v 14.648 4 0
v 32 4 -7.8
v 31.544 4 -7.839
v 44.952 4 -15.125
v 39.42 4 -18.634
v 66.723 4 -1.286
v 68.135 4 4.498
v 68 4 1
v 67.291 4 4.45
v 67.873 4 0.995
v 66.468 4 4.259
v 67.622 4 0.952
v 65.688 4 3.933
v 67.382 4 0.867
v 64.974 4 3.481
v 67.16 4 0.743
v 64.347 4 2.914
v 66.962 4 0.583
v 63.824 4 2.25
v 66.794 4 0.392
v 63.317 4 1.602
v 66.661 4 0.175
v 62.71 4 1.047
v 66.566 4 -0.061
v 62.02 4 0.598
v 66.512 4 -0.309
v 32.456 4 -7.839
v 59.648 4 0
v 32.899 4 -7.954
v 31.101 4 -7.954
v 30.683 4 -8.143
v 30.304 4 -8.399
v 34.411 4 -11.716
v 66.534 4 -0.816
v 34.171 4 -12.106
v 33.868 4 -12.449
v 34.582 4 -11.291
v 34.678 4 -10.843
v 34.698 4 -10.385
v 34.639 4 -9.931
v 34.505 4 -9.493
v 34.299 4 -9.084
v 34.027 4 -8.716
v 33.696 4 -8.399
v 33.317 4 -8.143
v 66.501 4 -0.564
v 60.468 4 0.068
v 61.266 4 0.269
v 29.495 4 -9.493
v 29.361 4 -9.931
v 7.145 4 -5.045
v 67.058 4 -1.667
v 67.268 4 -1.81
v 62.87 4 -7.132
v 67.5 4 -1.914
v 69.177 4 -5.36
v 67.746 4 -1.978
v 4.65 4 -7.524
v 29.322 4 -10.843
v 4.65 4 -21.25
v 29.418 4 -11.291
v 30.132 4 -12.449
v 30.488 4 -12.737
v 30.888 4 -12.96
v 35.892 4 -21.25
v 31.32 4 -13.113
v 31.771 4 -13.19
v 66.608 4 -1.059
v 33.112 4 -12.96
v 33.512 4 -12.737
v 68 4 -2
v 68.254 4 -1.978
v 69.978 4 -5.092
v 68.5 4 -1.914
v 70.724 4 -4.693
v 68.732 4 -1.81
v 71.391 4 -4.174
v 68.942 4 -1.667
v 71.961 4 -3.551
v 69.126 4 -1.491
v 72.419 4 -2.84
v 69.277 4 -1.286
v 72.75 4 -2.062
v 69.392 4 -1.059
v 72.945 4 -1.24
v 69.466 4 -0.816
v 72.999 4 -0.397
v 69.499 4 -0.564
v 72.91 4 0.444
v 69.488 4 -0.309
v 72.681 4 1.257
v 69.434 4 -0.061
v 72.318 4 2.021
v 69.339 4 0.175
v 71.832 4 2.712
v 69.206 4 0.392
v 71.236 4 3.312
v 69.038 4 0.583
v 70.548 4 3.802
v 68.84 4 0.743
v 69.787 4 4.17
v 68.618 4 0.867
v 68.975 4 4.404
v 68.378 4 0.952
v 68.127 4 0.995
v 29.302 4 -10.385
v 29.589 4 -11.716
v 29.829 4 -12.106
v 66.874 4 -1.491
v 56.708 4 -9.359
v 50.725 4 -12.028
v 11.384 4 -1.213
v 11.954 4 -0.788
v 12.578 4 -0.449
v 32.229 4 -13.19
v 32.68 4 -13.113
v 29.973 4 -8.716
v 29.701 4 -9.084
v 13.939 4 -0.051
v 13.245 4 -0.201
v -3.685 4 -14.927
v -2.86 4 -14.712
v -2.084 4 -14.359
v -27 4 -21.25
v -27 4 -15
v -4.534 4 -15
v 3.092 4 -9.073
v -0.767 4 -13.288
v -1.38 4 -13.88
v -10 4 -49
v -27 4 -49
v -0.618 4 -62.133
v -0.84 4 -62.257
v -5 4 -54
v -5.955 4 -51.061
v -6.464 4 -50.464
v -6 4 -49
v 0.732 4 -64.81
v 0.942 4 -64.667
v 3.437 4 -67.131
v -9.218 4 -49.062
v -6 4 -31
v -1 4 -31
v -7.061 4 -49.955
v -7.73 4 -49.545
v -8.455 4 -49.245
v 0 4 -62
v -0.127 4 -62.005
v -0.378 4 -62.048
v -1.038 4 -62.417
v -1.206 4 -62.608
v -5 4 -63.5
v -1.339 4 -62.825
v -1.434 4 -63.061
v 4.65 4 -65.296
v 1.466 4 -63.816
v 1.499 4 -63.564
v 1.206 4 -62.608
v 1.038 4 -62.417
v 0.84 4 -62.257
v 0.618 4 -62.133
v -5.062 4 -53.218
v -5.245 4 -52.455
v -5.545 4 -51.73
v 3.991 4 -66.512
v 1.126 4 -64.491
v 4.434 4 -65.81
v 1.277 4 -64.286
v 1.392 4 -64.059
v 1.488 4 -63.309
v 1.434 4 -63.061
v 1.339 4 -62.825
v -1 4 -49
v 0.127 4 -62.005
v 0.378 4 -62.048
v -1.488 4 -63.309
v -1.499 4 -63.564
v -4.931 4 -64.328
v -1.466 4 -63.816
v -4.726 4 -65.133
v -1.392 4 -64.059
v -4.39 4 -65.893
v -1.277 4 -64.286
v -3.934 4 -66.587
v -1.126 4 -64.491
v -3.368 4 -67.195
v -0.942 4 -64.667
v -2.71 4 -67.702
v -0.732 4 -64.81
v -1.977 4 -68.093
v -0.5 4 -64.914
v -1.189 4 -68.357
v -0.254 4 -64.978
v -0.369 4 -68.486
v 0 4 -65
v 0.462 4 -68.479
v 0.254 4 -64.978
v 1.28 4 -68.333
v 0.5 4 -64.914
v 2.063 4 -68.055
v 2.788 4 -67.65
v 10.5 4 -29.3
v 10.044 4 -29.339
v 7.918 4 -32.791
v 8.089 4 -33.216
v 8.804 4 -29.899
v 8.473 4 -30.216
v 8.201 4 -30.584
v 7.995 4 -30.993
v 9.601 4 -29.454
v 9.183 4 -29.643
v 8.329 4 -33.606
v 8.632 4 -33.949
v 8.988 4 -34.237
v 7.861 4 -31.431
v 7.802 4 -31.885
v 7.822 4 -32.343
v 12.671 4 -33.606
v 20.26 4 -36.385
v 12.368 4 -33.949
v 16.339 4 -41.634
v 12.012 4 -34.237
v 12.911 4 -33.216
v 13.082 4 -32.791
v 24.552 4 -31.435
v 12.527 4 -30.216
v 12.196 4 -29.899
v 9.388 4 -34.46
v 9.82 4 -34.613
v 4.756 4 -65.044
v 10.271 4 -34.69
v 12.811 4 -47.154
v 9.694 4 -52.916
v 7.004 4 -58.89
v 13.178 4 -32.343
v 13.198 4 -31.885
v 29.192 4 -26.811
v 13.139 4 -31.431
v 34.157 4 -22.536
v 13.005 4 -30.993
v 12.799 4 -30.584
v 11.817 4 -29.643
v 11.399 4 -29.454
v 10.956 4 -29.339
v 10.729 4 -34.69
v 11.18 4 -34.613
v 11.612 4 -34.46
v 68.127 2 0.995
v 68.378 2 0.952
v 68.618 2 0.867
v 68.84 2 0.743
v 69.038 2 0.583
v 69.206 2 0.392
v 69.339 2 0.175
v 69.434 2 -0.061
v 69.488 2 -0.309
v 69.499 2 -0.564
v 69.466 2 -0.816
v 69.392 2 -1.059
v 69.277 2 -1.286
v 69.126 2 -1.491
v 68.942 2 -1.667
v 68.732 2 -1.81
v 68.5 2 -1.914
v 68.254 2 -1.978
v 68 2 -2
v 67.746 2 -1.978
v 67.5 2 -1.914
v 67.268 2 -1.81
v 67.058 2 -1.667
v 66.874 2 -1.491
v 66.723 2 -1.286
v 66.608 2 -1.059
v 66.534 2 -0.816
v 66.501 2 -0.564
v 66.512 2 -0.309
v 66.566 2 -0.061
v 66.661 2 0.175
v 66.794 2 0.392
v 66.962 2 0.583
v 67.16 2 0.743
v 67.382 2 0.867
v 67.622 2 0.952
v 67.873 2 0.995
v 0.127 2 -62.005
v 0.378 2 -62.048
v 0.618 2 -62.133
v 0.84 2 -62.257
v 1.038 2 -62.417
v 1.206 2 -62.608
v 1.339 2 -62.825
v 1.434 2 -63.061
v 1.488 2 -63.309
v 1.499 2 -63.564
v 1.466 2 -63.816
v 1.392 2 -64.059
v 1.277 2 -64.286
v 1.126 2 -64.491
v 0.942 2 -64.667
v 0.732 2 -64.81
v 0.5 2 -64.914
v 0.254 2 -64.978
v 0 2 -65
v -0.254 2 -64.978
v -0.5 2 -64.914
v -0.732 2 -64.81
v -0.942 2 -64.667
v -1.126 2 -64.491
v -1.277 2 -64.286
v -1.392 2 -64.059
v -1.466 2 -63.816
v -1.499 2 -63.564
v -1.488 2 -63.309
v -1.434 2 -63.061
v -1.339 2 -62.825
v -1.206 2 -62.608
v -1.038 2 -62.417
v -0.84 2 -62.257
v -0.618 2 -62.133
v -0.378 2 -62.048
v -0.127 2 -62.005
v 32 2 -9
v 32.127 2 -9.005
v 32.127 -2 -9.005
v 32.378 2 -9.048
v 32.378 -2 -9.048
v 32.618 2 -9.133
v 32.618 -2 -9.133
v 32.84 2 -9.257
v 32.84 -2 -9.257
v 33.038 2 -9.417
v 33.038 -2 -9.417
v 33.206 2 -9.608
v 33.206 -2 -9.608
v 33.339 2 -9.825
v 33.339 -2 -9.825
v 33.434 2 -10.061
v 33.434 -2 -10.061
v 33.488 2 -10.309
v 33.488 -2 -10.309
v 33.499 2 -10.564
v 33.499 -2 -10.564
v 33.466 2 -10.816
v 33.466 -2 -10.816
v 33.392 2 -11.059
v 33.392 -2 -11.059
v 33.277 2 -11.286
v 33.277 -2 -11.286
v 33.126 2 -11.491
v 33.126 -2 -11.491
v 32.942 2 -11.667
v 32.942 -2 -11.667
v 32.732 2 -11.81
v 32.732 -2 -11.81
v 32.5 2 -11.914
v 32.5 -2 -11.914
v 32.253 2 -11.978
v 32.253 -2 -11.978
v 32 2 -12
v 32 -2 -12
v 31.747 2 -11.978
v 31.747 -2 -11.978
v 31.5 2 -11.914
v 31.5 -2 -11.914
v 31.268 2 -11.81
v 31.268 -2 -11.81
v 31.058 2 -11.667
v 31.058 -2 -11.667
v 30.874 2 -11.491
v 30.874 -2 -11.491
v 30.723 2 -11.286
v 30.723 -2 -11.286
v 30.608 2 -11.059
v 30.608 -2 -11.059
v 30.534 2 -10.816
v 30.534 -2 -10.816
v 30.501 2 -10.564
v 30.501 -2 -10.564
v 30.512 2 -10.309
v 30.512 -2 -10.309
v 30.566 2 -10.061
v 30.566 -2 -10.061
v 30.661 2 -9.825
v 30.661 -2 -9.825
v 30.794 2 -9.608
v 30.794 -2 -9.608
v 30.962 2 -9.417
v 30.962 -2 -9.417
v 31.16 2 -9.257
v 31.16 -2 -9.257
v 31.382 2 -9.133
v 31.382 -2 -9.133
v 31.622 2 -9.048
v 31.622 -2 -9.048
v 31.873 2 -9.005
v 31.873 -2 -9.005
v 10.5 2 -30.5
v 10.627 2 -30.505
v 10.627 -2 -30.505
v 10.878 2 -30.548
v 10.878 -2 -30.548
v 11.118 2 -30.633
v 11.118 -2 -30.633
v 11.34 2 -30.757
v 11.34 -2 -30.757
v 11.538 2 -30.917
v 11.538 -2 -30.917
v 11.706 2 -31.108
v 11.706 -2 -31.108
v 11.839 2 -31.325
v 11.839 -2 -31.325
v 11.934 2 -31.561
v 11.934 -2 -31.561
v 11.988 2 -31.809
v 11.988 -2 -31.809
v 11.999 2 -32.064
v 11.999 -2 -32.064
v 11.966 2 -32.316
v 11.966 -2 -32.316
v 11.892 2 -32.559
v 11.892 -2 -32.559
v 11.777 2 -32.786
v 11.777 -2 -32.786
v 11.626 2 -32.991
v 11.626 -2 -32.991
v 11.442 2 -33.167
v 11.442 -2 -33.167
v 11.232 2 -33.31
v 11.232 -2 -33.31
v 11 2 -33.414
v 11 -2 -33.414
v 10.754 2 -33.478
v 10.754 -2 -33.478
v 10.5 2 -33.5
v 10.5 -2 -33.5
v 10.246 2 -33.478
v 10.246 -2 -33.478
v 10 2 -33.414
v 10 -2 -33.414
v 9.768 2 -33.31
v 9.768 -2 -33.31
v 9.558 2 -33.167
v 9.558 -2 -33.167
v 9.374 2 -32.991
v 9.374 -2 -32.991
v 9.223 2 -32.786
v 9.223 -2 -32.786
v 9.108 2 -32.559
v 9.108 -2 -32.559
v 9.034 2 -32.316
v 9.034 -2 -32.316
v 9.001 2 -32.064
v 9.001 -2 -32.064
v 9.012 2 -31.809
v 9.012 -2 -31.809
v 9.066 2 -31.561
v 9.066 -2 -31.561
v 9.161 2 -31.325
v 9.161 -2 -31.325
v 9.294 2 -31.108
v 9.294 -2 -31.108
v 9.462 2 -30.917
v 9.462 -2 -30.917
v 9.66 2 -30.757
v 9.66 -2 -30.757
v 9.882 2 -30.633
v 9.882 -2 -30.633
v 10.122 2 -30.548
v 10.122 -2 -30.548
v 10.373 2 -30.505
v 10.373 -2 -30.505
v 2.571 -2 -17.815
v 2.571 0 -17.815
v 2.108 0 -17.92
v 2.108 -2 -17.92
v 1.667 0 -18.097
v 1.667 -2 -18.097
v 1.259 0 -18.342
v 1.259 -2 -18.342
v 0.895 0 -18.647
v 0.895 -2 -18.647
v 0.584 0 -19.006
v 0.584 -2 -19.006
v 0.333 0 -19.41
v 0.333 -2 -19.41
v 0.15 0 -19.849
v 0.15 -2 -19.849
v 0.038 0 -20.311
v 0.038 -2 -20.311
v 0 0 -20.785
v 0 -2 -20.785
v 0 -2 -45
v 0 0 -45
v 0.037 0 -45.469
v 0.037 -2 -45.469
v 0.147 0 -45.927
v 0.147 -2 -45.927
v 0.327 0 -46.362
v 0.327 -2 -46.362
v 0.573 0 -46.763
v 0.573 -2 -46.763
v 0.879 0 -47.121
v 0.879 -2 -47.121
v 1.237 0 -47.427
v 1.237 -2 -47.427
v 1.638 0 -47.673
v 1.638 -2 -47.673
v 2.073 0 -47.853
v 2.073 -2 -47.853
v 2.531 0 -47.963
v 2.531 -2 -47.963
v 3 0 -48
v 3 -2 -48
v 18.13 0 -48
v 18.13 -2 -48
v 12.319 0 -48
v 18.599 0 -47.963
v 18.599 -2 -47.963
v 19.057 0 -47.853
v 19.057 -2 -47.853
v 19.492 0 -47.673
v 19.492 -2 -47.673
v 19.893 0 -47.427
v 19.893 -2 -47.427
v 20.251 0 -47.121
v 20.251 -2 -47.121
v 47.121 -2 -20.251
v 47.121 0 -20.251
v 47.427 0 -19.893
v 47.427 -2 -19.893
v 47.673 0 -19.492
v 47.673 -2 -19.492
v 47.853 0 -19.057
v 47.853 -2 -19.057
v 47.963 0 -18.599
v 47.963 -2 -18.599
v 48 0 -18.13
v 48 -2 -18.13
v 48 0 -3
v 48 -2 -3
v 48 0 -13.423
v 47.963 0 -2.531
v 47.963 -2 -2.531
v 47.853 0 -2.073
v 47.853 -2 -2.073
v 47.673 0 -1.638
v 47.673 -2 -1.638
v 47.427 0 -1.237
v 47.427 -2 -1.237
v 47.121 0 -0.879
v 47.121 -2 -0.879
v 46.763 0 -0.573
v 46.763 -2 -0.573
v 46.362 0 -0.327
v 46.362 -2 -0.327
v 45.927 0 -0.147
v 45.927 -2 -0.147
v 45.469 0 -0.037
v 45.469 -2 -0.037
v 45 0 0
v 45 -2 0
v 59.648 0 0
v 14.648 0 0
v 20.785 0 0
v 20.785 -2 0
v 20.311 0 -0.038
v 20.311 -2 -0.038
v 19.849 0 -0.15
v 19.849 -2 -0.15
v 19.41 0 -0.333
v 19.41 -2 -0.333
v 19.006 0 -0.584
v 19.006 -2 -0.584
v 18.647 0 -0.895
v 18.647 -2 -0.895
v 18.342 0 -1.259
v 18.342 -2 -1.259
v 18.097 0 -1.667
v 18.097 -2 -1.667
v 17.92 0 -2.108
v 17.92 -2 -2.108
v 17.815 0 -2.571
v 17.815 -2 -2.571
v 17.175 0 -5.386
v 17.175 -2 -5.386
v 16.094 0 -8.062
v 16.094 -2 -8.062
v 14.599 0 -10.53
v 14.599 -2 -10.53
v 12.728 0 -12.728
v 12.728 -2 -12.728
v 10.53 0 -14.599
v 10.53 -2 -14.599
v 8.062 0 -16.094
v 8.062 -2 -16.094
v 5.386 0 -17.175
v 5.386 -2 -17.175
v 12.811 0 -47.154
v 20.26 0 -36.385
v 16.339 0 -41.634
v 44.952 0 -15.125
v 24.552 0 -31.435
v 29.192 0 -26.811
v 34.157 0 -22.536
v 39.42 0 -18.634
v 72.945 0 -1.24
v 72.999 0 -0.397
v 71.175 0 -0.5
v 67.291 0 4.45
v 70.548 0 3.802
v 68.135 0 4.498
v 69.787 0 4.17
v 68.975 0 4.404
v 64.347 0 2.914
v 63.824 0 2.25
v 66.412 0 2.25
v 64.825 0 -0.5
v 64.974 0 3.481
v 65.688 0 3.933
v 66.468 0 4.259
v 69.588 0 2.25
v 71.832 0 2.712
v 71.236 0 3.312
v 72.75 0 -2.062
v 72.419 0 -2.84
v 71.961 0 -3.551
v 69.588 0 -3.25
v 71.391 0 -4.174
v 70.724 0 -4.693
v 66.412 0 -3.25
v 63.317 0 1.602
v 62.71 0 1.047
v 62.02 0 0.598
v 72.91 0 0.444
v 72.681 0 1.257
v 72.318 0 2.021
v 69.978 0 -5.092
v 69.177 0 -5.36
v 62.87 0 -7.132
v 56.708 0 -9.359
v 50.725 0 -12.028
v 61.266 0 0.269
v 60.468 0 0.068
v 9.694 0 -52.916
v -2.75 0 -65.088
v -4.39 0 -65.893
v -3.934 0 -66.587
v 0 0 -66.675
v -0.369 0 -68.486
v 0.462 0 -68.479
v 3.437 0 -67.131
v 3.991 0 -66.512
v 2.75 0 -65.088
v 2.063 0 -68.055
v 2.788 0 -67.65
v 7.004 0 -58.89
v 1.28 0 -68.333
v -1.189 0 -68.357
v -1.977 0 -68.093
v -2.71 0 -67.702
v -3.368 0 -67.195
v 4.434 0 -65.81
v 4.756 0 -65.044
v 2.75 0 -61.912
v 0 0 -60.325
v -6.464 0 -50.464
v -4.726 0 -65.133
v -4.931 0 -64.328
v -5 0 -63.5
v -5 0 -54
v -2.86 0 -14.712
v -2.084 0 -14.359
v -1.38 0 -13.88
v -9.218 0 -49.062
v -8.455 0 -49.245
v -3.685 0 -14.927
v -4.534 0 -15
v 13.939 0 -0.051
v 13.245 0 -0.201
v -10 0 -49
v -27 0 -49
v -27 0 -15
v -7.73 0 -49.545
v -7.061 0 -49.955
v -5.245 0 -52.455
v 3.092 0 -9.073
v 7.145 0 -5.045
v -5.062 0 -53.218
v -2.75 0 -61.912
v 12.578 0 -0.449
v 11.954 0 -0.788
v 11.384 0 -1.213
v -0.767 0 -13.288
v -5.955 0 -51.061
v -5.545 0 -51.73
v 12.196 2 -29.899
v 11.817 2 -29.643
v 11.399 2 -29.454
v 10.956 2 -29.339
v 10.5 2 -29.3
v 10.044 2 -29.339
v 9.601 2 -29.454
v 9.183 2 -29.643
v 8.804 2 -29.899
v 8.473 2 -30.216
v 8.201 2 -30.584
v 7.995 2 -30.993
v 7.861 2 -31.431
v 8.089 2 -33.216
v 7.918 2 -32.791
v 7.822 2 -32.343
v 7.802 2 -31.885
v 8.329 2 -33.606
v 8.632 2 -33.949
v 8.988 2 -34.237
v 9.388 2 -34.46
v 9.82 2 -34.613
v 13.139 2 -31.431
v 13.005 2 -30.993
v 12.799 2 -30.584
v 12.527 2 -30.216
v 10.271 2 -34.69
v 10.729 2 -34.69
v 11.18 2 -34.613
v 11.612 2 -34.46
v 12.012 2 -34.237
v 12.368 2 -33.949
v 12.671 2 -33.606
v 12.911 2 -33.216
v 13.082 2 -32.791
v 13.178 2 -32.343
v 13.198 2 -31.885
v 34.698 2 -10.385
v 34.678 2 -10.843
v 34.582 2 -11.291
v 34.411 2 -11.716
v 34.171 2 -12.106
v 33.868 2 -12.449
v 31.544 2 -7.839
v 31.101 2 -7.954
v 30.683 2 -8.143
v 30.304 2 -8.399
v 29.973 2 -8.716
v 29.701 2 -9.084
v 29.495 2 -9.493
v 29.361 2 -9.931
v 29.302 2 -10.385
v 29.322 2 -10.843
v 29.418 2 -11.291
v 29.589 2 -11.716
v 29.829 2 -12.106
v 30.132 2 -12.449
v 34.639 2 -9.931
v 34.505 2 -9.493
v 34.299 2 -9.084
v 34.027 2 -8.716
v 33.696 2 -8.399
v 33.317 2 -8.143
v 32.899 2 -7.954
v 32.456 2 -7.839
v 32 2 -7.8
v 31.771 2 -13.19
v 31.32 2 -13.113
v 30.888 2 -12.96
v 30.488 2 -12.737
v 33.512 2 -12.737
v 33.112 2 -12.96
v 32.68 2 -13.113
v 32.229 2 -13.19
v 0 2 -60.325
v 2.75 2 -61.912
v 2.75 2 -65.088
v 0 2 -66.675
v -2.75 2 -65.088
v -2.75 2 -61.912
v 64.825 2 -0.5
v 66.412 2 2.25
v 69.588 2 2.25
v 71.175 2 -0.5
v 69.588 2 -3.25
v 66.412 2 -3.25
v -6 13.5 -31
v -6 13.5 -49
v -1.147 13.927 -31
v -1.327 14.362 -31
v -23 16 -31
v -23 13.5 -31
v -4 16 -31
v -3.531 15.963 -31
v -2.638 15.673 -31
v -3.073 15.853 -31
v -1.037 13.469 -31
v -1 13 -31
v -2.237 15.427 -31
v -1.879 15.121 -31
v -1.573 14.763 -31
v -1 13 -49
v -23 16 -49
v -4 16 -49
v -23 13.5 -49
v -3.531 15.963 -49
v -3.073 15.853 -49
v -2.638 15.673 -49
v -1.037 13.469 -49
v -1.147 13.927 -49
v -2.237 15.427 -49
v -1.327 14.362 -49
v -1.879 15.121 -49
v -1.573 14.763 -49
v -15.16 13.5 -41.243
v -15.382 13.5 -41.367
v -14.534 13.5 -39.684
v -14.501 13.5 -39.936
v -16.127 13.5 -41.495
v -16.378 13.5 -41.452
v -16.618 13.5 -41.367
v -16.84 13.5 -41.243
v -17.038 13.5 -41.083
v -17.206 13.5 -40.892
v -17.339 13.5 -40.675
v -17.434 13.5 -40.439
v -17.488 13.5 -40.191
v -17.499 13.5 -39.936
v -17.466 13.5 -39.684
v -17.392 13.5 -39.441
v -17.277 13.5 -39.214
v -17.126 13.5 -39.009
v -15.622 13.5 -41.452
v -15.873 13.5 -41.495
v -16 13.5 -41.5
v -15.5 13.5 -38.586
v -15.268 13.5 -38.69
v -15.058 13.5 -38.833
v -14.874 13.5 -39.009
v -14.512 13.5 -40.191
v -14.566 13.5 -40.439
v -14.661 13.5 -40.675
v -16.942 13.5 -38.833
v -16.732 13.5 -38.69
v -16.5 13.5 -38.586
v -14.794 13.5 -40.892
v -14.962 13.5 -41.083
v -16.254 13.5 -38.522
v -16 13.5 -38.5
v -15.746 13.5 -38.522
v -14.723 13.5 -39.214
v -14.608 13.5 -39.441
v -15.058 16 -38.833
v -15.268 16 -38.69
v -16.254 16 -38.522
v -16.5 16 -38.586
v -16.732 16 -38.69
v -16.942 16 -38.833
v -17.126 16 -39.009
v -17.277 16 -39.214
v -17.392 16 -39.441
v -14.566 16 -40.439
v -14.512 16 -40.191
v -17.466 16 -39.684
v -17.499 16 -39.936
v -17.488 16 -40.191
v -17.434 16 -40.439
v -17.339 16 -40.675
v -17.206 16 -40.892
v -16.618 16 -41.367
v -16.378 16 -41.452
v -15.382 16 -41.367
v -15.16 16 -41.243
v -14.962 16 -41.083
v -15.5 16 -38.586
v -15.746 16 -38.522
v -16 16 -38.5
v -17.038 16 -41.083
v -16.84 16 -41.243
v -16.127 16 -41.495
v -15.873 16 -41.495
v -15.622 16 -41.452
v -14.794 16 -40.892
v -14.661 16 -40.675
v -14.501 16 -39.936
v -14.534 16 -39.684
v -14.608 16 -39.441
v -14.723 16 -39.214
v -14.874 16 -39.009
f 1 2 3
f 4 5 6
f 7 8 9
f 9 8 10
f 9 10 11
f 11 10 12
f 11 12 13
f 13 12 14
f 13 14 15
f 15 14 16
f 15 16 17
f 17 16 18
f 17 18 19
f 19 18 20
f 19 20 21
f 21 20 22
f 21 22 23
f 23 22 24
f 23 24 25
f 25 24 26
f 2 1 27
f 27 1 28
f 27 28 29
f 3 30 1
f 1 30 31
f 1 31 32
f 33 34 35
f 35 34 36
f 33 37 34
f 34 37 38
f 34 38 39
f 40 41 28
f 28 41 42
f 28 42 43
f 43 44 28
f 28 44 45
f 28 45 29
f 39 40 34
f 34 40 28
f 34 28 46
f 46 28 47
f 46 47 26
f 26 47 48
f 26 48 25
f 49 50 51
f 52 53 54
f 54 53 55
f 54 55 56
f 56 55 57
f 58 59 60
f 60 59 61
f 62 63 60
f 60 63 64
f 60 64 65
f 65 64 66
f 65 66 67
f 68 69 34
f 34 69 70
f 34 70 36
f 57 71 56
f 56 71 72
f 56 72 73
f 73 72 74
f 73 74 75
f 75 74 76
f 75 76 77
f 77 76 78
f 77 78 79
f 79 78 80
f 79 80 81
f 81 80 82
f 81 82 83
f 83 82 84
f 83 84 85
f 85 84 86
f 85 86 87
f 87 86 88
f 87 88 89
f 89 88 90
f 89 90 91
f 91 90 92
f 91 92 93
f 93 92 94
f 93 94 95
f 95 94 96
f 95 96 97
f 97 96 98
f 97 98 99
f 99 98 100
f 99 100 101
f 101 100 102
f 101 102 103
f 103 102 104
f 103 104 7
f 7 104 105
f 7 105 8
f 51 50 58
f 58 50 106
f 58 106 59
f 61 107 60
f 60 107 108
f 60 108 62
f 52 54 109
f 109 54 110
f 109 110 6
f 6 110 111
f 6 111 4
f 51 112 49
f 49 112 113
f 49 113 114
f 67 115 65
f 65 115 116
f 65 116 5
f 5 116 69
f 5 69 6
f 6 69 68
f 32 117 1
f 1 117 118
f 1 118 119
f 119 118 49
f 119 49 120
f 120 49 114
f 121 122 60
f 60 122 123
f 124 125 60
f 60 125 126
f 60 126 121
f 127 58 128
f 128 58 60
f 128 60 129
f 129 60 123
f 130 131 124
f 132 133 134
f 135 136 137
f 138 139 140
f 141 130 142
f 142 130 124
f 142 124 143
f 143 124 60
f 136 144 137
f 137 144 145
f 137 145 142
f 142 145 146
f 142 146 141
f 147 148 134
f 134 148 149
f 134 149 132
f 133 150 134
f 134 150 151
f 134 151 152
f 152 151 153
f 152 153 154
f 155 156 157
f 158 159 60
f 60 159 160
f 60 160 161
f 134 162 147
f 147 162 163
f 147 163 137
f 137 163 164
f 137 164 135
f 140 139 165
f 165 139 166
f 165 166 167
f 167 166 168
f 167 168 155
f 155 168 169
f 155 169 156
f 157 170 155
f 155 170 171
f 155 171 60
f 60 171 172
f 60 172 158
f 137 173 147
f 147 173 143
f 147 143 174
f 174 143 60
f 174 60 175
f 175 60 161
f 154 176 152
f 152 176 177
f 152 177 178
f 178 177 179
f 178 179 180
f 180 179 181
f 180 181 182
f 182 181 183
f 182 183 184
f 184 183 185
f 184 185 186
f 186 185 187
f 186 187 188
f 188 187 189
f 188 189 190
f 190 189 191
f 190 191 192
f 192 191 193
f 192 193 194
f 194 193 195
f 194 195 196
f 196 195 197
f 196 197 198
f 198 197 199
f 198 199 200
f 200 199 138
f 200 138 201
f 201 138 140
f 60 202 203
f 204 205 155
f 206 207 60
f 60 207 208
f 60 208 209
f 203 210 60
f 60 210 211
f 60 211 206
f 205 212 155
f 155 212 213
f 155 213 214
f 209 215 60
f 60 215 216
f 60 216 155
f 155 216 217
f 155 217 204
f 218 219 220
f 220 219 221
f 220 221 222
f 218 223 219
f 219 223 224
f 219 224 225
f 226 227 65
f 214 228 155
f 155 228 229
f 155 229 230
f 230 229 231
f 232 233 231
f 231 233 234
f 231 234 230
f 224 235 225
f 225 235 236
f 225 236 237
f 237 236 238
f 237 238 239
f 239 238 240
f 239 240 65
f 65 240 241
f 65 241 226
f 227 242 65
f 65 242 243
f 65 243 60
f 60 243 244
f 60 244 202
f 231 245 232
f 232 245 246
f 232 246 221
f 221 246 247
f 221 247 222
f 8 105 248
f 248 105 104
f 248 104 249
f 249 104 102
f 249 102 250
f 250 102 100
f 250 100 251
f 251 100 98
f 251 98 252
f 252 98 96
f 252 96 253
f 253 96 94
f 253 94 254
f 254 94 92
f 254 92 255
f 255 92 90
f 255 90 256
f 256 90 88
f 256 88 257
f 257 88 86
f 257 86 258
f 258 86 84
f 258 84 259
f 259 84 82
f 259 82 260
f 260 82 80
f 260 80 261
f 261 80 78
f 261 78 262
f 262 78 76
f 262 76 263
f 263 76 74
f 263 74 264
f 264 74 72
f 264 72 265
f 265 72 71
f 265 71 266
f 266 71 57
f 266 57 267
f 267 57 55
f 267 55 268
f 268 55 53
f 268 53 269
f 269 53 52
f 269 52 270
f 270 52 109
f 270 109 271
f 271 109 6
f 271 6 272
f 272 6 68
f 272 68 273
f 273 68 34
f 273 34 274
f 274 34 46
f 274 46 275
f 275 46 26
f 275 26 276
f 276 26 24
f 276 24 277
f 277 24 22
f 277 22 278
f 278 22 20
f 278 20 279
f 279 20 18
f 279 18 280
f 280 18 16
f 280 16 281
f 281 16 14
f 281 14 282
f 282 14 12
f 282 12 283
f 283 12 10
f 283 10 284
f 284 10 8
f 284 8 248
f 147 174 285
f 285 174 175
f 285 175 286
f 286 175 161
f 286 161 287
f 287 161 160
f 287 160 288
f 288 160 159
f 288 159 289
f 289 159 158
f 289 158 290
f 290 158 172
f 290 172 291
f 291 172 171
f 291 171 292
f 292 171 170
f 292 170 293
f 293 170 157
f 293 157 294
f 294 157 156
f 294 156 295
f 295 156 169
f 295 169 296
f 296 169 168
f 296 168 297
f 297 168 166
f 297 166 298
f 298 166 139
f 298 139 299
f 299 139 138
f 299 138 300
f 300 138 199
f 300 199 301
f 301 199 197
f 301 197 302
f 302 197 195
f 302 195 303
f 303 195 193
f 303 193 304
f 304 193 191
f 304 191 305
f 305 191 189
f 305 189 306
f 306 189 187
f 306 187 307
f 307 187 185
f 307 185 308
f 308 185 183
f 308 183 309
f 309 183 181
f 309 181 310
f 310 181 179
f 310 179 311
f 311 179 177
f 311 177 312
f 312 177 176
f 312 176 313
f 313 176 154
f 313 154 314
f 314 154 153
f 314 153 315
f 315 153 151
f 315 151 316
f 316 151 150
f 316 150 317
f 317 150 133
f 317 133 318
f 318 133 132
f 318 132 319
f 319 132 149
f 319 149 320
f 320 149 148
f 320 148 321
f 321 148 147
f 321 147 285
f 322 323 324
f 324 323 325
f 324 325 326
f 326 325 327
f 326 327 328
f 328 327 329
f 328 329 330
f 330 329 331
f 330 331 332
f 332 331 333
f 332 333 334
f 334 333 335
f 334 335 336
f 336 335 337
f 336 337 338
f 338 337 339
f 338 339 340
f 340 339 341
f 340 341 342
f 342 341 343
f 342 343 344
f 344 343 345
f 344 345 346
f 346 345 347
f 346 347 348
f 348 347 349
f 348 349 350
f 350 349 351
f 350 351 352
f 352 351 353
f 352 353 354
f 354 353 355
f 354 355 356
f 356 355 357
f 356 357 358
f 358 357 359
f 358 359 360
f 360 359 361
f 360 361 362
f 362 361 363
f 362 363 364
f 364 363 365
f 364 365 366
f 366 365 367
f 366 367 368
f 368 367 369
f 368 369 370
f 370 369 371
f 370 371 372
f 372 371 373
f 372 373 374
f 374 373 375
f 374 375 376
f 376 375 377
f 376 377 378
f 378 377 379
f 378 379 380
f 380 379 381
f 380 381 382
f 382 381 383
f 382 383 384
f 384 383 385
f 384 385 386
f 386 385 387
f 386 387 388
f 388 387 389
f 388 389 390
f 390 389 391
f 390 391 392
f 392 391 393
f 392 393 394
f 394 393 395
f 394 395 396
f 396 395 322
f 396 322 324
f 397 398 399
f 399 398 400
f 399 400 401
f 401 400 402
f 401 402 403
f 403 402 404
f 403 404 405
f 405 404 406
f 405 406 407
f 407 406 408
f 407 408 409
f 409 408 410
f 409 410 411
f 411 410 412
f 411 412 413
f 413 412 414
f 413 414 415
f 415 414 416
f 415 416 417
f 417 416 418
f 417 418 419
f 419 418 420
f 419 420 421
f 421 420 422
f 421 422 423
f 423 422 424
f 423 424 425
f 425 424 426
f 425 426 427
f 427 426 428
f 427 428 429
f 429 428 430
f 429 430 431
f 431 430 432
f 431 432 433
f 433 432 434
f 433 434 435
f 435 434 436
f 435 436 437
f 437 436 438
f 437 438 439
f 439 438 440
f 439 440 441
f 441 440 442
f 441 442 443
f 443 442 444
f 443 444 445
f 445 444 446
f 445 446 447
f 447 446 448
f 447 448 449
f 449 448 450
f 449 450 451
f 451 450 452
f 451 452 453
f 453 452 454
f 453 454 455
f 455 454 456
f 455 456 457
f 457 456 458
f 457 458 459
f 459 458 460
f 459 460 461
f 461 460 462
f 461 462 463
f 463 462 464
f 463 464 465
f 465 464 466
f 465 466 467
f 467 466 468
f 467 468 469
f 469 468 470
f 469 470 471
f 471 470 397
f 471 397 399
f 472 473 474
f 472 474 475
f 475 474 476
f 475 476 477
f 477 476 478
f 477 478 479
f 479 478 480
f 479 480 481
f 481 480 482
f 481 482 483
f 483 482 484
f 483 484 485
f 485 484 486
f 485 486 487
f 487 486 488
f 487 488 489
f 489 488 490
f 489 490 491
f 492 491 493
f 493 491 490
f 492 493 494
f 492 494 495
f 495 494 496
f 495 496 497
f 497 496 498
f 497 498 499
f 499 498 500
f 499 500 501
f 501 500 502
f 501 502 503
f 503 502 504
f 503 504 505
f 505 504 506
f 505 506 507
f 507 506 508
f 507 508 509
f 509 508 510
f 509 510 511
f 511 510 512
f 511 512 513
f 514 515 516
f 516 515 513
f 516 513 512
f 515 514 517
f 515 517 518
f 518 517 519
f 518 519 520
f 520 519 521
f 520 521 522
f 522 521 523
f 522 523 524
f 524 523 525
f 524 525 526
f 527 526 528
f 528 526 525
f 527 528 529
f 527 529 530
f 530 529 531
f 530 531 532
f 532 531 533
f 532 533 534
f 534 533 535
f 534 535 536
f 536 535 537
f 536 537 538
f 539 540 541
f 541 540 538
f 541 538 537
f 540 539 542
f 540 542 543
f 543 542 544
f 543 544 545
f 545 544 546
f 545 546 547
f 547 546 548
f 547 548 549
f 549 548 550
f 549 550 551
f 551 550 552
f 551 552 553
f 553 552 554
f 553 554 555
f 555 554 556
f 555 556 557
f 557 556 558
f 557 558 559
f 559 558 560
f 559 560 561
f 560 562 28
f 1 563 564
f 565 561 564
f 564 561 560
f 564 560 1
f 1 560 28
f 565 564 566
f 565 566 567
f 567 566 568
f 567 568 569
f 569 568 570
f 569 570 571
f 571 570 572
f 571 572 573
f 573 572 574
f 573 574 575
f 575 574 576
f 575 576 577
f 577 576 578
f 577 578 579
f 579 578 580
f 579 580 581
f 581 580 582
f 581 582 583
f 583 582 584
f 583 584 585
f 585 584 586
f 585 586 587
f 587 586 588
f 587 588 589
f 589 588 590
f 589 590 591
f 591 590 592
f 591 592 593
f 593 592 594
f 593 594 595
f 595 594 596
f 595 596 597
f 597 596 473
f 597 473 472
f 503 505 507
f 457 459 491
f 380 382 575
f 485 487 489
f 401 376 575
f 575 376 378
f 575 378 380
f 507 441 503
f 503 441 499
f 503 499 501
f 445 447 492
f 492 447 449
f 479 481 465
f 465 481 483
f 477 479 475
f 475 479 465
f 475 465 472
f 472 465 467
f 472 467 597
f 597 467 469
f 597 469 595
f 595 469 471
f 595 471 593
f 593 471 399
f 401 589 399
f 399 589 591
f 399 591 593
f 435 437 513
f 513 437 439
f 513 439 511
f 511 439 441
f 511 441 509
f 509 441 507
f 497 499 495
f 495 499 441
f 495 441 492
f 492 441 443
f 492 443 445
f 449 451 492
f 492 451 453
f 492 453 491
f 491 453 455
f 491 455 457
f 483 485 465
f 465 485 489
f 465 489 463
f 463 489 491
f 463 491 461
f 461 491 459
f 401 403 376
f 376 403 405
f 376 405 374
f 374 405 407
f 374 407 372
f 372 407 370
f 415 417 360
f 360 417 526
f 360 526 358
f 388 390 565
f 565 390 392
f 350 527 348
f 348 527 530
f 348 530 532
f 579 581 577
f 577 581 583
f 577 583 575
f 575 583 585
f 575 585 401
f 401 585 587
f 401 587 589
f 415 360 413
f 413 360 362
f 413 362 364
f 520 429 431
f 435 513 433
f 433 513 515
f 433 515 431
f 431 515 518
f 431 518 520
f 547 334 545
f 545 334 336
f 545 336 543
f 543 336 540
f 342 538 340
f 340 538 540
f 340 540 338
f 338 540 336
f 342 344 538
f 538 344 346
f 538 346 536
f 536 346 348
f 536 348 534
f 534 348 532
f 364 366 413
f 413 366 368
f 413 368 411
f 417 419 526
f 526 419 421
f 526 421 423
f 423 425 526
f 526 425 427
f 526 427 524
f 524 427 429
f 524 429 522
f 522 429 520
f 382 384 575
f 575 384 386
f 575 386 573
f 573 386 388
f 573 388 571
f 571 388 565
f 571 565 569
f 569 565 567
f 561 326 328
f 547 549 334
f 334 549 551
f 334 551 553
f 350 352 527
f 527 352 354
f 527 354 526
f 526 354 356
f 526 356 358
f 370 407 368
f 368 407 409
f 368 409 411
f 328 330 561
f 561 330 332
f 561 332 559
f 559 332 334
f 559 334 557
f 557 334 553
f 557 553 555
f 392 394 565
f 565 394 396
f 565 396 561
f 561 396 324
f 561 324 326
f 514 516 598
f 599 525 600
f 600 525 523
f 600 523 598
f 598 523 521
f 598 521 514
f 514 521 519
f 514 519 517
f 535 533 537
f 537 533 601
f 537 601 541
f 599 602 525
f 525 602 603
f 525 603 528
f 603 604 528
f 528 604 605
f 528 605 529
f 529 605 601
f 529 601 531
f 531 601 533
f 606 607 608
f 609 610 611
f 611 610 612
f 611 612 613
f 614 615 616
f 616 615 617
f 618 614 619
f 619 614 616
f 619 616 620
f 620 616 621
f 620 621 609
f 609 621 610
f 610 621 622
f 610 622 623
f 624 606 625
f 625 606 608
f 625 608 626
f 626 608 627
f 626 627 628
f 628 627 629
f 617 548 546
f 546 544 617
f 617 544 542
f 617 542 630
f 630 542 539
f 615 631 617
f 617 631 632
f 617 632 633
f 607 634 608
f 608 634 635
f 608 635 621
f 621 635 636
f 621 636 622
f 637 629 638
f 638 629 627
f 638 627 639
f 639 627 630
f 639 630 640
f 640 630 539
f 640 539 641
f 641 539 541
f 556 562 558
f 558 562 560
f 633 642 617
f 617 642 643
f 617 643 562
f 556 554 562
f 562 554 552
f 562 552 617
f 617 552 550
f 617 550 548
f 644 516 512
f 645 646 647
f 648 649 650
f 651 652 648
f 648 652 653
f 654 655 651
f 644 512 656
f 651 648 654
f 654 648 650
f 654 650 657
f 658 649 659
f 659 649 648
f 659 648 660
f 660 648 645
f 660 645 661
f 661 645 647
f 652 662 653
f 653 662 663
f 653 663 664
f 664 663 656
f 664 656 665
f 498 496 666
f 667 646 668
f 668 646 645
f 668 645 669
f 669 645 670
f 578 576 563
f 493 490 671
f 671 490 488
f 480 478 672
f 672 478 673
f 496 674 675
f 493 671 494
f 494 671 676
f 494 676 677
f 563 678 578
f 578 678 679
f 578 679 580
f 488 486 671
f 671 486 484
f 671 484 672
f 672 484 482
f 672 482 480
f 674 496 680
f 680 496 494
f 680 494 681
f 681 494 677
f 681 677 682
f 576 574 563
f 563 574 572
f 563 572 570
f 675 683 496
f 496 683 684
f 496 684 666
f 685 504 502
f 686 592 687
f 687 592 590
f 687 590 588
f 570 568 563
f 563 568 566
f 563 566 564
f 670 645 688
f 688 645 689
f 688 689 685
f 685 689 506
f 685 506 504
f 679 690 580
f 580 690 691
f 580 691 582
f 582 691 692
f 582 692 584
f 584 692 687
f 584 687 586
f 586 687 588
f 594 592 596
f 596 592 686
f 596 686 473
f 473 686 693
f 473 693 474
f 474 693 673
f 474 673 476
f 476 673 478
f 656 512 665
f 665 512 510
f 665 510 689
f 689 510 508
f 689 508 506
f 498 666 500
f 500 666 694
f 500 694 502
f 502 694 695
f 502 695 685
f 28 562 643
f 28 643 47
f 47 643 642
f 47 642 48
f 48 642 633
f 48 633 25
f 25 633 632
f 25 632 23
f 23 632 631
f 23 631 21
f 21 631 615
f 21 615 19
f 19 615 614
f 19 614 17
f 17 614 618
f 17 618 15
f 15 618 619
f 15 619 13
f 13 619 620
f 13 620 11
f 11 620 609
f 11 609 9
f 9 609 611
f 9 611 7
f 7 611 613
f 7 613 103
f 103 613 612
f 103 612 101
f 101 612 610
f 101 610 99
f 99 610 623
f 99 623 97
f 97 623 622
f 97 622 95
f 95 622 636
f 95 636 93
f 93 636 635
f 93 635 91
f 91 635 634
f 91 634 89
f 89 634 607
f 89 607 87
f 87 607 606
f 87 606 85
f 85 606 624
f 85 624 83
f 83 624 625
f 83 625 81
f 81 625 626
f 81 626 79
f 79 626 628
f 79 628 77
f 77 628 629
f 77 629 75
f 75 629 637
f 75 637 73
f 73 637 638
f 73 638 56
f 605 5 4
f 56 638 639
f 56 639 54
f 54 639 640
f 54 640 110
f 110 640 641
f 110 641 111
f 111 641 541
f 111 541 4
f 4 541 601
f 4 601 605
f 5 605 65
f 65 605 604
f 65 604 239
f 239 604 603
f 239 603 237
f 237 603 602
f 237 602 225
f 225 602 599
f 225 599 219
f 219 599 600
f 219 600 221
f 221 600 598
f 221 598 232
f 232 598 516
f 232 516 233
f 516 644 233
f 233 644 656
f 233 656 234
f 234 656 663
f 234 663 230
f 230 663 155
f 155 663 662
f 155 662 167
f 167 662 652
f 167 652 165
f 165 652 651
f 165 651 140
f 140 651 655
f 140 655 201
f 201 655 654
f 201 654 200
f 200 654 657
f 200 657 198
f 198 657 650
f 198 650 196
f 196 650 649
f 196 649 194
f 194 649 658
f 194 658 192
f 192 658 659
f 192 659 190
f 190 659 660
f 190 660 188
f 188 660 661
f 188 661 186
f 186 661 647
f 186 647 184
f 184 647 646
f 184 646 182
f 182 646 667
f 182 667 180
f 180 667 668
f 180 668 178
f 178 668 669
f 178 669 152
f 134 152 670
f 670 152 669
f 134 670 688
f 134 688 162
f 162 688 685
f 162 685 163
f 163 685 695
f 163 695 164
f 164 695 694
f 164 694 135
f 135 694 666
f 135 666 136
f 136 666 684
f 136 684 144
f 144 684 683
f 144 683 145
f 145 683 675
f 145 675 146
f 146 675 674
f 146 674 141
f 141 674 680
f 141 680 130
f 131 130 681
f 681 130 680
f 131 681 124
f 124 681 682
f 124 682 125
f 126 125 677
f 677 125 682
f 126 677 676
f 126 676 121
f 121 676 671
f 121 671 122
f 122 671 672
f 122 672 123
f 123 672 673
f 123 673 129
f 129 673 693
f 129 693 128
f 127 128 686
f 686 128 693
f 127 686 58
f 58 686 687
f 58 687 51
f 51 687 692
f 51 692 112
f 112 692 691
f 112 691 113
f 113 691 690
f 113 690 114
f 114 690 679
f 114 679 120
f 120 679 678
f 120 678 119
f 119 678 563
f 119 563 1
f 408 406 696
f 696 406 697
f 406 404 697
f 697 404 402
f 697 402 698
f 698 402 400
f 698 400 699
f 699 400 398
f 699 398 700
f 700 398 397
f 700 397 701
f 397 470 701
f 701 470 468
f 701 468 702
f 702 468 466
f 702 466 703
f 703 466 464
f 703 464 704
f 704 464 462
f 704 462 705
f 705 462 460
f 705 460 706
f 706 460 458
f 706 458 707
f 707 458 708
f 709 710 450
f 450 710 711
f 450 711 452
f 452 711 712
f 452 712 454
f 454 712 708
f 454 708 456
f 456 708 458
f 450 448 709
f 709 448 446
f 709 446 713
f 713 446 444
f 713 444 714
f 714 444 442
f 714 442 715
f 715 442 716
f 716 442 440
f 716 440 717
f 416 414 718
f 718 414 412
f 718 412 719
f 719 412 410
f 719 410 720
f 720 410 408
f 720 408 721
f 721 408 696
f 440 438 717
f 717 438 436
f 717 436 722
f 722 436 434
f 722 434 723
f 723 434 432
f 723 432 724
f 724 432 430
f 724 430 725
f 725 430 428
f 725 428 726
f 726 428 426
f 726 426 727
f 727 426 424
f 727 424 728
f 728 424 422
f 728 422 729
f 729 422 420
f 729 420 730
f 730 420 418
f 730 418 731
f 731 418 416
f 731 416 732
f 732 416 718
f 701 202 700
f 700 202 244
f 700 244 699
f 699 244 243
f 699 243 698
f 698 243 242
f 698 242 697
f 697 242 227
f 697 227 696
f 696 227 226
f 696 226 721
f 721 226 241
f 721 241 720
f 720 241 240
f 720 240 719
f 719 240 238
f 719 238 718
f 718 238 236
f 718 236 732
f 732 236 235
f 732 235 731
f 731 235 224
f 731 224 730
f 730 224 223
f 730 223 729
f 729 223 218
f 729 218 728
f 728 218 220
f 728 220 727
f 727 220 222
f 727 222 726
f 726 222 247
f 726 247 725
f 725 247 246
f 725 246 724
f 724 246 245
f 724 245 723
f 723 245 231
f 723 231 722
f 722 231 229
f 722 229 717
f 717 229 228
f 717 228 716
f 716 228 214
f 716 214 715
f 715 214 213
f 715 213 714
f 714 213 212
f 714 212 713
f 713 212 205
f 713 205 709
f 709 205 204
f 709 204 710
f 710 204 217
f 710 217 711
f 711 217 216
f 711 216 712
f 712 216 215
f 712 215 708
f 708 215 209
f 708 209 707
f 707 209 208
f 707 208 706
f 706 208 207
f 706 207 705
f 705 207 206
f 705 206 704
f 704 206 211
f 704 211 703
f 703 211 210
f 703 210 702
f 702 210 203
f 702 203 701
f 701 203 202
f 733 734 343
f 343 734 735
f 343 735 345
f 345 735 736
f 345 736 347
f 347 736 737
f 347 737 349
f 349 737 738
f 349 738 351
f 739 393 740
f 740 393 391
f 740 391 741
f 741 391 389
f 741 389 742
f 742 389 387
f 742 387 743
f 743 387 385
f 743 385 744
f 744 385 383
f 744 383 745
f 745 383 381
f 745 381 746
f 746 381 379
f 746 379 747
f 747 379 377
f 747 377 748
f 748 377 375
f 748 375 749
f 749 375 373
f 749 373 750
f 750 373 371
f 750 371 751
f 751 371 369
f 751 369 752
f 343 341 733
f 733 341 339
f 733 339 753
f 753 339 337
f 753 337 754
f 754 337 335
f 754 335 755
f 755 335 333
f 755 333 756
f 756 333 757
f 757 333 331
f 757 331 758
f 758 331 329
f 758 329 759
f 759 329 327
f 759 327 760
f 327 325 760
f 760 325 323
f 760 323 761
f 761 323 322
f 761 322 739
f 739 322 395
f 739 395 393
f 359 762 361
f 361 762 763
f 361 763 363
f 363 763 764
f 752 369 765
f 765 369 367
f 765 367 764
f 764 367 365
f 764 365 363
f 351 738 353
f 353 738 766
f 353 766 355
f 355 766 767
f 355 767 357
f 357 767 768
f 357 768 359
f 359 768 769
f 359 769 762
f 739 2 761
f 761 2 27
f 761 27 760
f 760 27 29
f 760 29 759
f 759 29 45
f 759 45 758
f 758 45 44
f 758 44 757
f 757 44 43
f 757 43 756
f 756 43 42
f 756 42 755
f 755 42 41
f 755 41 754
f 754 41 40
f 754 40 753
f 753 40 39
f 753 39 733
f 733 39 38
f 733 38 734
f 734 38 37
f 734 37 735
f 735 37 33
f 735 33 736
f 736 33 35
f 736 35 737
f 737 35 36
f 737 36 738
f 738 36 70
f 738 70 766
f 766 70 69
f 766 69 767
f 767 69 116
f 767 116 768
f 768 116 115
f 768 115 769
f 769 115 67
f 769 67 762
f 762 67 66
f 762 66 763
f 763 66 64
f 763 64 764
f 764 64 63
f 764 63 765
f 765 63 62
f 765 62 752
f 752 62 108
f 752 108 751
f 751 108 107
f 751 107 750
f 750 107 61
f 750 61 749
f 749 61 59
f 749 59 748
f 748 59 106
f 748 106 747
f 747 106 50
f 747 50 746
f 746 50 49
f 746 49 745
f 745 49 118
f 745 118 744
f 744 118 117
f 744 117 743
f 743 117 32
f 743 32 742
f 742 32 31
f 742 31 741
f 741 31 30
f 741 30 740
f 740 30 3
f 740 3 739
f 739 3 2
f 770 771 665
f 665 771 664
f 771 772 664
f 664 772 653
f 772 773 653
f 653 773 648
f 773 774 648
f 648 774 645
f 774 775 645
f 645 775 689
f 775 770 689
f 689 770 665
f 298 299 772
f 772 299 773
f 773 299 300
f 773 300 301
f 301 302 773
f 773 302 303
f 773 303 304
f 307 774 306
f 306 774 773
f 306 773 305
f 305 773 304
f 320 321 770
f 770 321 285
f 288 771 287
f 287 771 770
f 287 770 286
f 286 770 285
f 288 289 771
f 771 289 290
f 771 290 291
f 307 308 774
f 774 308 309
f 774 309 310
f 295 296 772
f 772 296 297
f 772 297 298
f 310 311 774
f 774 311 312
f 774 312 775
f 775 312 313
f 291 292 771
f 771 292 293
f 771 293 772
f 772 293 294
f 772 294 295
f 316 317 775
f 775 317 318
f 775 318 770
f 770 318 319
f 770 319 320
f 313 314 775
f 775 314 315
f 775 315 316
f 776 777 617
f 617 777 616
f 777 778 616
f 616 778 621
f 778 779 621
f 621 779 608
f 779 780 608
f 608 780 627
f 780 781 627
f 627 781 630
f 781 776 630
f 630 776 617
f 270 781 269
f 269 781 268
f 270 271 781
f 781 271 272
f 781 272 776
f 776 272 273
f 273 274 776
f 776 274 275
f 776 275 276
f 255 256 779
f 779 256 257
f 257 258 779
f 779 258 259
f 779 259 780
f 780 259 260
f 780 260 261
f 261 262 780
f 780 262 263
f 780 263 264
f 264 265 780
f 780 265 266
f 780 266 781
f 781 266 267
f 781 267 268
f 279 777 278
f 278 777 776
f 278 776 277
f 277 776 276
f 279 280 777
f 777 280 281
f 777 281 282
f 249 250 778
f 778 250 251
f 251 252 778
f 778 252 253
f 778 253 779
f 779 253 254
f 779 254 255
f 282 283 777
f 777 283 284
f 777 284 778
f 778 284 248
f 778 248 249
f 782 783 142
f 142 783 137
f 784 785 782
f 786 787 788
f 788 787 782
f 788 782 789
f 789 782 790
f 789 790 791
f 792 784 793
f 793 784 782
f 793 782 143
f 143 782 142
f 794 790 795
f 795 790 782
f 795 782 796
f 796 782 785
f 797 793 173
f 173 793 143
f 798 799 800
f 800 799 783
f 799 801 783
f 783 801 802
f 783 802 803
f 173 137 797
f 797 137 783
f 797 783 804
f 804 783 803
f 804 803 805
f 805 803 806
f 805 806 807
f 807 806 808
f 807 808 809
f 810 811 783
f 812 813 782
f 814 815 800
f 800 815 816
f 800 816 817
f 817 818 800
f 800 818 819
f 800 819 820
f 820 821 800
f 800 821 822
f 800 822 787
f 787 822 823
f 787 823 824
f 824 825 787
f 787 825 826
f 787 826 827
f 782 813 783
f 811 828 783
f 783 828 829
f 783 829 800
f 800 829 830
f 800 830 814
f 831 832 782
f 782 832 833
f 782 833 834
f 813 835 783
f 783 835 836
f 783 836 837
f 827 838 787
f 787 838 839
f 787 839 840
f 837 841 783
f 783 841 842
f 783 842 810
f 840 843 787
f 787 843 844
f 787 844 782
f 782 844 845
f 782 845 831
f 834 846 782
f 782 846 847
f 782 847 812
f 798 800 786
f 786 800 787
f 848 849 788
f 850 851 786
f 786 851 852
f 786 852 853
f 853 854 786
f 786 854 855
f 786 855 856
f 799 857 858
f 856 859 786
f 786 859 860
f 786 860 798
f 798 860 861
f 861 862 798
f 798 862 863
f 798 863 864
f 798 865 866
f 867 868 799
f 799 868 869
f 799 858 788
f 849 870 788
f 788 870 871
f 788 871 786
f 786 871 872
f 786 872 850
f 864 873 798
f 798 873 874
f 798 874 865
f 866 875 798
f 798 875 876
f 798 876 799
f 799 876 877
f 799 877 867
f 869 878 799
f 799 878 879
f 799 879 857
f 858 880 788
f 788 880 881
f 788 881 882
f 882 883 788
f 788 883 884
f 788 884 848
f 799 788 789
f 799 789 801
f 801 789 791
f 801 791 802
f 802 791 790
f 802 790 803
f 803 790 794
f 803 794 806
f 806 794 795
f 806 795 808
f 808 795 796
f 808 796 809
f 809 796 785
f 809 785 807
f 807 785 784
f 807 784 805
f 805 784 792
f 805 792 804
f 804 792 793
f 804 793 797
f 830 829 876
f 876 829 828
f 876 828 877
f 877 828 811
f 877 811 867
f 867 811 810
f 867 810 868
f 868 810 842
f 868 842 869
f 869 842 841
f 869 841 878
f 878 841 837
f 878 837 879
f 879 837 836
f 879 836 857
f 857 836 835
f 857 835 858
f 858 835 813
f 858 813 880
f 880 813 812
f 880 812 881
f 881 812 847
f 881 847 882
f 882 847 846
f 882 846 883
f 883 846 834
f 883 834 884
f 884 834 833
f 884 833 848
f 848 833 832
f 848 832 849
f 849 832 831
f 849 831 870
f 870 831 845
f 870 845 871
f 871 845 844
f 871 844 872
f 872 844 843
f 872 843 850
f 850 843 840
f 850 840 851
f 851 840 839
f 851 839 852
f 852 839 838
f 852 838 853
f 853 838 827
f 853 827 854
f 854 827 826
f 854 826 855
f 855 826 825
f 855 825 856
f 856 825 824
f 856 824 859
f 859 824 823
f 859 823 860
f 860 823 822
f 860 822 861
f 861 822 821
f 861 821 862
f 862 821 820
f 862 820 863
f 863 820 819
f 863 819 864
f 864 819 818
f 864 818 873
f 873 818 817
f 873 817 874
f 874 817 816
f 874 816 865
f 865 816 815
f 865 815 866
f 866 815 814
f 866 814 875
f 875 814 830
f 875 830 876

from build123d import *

# Parameters (mm, degrees)
SALIENTE_EXTRUIR2_DEPTH = 2
CROQUIS4_R              = 1.5
SALIENTE_EXTRUIR3_DEPTH = 4
CROQUIS6_R              = 1.5
CORTAR_EXTRUIR1_DEPTH   = 44
CROQUIS7_R              = 2.7
CORTAR_EXTRUIR2_DEPTH   = 2
CORTAR_EXTRUIR3_DEPTH   = 2
CORTAR_EXTRUIR4_DEPTH   = 2
CROQUIS10_W             = 5
CROQUIS10_H             = 18
SALIENTE_EXTRUIR4_DEPTH = 2
SALIENTE_EXTRUIR5_DEPTH = 18
CROQUIS12_R             = 1.5
CORTAR_EXTRUIR5_DEPTH   = 5


with BuildPart() as part:
    # Croquis1 → Saliente-Extruir2 (new body)
    with BuildSketch(Plane(origin=(0, 0, 0), x_dir=(1, 0, 0), z_dir=(0, 1, 0))):
        with BuildLine():
            Line((3, 48), (18.129942315, 48))
            ThreePointArc((18.129942315, 48), (19.277992612, 47.771638598), (20.251262658, 47.121320344))
            Line((20.251262658, 47.121320344), (47.121320344, 20.251262658))
            ThreePointArc((47.121320344, 20.251262658), (47.771638598, 19.277992612), (48, 18.129942315))
            Line((48, 18.129942315), (48, 3))
            ThreePointArc((48, 3), (47.121320344, 0.878679656), (45, 0))
            Line((45, 0), (20.784609691, 0))
            ThreePointArc((20.784609691, 0), (18.820648679, 0.732213162), (17.815379735, 2.571428571))
            ThreePointArc((17.815379735, 2.571428571), (12.727922061, 12.727922061), (2.571428571, 17.815379735))
            ThreePointArc((2.571428571, 17.815379735), (0.732213162, 18.820648679), (0, 20.784609691))
            Line((0, 20.784609691), (0, 45))
            ThreePointArc((0, 45), (0.878679656, 47.121320344), (3, 48))
        make_face()
    extrude(amount=-SALIENTE_EXTRUIR2_DEPTH)

    # Croquis4 → Saliente-Extruir3 (add)
    with BuildSketch(Plane(origin=(0, 0, 0), x_dir=(1, 0, 0), z_dir=(0, 1, 0))):
        with BuildLine():
            Line((14.648353456, 0), (59.648353456, 0))
            ThreePointArc((59.648353456, 0), (62.020061701, -0.598295785), (63.824176728, -2.25))
            ThreePointArc((63.824176728, -2.25), (72.089608603, -2.37664761), (69.176765452, 5.359549678))
            ThreePointArc((69.176765452, 5.359549678), (29.192462946, 26.810912386), (4.755712821, 65.043760204))
            ThreePointArc((4.755712821, 65.043760204), (-0.781484452, 68.438550602), (-5, 63.5))
            Line((-5, 63.5), (-5, 54))
            ThreePointArc((-5, 54), (-6.464466094, 50.464466094), (-10, 49))
            Line((-10, 49), (-27, 49))
            Line((-27, 49), (-27, 15))
            Line((-27, 15), (-4.533601503, 15))
            ThreePointArc((-4.533601503, 15), (-2.464811146, 14.551934364), (-0.766802335, 13.288042583))
            ThreePointArc((-0.766802335, 13.288042583), (5.094474955, 7.035057245), (11.383817909, 1.212810057))
            ThreePointArc((11.383817909, 1.212810057), (12.907082327, 0.312999375), (14.648353456, 0))
        make_face()
        with Locations(Location((0, 63.5, 0), (0, 0, 270))):
            Circle(CROQUIS4_R, mode=Mode.SUBTRACT)
        with Locations(Location((68, 0.5, 0), (0, 0, 270))):
            Circle(CROQUIS4_R, mode=Mode.SUBTRACT)
    extrude(amount=SALIENTE_EXTRUIR3_DEPTH)

    # Croquis6 → Cortar-Extruir1 (cut)
    with BuildSketch(Plane.XZ.offset(2)):
        with Locations(Location((10.5, -32, 0), (0, 0, 270))):
            Circle(CROQUIS6_R)
        with Locations(Location((32, -10.5, 0), (0, 0, 270))):
            Circle(CROQUIS6_R)
    extrude(amount=-CORTAR_EXTRUIR1_DEPTH, mode=Mode.SUBTRACT)

    # Croquis7 → Cortar-Extruir2 (cut)
    with BuildSketch(Plane(origin=(0, 4, 0), x_dir=(1, 0, 0), z_dir=(0, 1, 0))):
        with Locations(Location((10.5, 32, 0), (0, 0, 270))):
            Circle(CROQUIS7_R)
        with Locations(Location((32, 10.5, 0), (0, 0, 270))):
            Circle(CROQUIS7_R)
    extrude(amount=-CORTAR_EXTRUIR2_DEPTH, mode=Mode.SUBTRACT)

    # Croquis8 → Cortar-Extruir3 (cut)
    with BuildSketch(Plane.XZ):
        Polygon((0, -60.324573519), (-2.75, -61.91228676), (-2.75, -65.08771324), (0, -66.675426481), (2.75, -65.08771324), (2.75, -61.91228676), align=None)
    extrude(amount=-CORTAR_EXTRUIR3_DEPTH, mode=Mode.SUBTRACT)

    # Croquis9 → Cortar-Extruir4 (cut)
    with BuildSketch(Plane.XZ):
        Polygon((64.824573519, -0.5), (66.41228676, -3.25), (69.58771324, -3.25), (71.175426481, -0.5), (69.58771324, 2.25), (66.41228676, 2.25), align=None)
    extrude(amount=-CORTAR_EXTRUIR4_DEPTH, mode=Mode.SUBTRACT)

    # Croquis10 → Saliente-Extruir4 (add)
    with BuildSketch(Plane(origin=(0, 4, 0), x_dir=(1, 0, 0), z_dir=(0, 1, 0))):
        with Locations((-3.5, 40)):
            Rectangle(CROQUIS10_W, CROQUIS10_H)
    extrude(amount=SALIENTE_EXTRUIR4_DEPTH)

    # Croquis11 → Saliente-Extruir5 (add)
    with BuildSketch(Plane.XY.offset(-31)):
        with BuildLine():
            Line((-6, 4), (-6, 13.5))
            Line((-6, 13.5), (-23, 13.5))
            Line((-23, 13.5), (-23, 16))
            Line((-23, 16), (-4, 16))
            ThreePointArc((-4, 16), (-1.878679656, 15.121320344), (-1, 13))
            Line((-1, 13), (-1, 4))
            Line((-1, 4), (-6, 4))
        make_face()
    extrude(amount=-SALIENTE_EXTRUIR5_DEPTH)

    # Croquis12 → Cortar-Extruir5 (cut)
    with BuildSketch(Plane(origin=(0, 16, 0), x_dir=(1, 0, 0), z_dir=(0, 1, 0))):
        with Locations(Location((-16, 40, 0), (0, 0, 270))):
            Circle(CROQUIS12_R)
    extrude(amount=-CORTAR_EXTRUIR5_DEPTH, mode=Mode.SUBTRACT)


solid = part.part
